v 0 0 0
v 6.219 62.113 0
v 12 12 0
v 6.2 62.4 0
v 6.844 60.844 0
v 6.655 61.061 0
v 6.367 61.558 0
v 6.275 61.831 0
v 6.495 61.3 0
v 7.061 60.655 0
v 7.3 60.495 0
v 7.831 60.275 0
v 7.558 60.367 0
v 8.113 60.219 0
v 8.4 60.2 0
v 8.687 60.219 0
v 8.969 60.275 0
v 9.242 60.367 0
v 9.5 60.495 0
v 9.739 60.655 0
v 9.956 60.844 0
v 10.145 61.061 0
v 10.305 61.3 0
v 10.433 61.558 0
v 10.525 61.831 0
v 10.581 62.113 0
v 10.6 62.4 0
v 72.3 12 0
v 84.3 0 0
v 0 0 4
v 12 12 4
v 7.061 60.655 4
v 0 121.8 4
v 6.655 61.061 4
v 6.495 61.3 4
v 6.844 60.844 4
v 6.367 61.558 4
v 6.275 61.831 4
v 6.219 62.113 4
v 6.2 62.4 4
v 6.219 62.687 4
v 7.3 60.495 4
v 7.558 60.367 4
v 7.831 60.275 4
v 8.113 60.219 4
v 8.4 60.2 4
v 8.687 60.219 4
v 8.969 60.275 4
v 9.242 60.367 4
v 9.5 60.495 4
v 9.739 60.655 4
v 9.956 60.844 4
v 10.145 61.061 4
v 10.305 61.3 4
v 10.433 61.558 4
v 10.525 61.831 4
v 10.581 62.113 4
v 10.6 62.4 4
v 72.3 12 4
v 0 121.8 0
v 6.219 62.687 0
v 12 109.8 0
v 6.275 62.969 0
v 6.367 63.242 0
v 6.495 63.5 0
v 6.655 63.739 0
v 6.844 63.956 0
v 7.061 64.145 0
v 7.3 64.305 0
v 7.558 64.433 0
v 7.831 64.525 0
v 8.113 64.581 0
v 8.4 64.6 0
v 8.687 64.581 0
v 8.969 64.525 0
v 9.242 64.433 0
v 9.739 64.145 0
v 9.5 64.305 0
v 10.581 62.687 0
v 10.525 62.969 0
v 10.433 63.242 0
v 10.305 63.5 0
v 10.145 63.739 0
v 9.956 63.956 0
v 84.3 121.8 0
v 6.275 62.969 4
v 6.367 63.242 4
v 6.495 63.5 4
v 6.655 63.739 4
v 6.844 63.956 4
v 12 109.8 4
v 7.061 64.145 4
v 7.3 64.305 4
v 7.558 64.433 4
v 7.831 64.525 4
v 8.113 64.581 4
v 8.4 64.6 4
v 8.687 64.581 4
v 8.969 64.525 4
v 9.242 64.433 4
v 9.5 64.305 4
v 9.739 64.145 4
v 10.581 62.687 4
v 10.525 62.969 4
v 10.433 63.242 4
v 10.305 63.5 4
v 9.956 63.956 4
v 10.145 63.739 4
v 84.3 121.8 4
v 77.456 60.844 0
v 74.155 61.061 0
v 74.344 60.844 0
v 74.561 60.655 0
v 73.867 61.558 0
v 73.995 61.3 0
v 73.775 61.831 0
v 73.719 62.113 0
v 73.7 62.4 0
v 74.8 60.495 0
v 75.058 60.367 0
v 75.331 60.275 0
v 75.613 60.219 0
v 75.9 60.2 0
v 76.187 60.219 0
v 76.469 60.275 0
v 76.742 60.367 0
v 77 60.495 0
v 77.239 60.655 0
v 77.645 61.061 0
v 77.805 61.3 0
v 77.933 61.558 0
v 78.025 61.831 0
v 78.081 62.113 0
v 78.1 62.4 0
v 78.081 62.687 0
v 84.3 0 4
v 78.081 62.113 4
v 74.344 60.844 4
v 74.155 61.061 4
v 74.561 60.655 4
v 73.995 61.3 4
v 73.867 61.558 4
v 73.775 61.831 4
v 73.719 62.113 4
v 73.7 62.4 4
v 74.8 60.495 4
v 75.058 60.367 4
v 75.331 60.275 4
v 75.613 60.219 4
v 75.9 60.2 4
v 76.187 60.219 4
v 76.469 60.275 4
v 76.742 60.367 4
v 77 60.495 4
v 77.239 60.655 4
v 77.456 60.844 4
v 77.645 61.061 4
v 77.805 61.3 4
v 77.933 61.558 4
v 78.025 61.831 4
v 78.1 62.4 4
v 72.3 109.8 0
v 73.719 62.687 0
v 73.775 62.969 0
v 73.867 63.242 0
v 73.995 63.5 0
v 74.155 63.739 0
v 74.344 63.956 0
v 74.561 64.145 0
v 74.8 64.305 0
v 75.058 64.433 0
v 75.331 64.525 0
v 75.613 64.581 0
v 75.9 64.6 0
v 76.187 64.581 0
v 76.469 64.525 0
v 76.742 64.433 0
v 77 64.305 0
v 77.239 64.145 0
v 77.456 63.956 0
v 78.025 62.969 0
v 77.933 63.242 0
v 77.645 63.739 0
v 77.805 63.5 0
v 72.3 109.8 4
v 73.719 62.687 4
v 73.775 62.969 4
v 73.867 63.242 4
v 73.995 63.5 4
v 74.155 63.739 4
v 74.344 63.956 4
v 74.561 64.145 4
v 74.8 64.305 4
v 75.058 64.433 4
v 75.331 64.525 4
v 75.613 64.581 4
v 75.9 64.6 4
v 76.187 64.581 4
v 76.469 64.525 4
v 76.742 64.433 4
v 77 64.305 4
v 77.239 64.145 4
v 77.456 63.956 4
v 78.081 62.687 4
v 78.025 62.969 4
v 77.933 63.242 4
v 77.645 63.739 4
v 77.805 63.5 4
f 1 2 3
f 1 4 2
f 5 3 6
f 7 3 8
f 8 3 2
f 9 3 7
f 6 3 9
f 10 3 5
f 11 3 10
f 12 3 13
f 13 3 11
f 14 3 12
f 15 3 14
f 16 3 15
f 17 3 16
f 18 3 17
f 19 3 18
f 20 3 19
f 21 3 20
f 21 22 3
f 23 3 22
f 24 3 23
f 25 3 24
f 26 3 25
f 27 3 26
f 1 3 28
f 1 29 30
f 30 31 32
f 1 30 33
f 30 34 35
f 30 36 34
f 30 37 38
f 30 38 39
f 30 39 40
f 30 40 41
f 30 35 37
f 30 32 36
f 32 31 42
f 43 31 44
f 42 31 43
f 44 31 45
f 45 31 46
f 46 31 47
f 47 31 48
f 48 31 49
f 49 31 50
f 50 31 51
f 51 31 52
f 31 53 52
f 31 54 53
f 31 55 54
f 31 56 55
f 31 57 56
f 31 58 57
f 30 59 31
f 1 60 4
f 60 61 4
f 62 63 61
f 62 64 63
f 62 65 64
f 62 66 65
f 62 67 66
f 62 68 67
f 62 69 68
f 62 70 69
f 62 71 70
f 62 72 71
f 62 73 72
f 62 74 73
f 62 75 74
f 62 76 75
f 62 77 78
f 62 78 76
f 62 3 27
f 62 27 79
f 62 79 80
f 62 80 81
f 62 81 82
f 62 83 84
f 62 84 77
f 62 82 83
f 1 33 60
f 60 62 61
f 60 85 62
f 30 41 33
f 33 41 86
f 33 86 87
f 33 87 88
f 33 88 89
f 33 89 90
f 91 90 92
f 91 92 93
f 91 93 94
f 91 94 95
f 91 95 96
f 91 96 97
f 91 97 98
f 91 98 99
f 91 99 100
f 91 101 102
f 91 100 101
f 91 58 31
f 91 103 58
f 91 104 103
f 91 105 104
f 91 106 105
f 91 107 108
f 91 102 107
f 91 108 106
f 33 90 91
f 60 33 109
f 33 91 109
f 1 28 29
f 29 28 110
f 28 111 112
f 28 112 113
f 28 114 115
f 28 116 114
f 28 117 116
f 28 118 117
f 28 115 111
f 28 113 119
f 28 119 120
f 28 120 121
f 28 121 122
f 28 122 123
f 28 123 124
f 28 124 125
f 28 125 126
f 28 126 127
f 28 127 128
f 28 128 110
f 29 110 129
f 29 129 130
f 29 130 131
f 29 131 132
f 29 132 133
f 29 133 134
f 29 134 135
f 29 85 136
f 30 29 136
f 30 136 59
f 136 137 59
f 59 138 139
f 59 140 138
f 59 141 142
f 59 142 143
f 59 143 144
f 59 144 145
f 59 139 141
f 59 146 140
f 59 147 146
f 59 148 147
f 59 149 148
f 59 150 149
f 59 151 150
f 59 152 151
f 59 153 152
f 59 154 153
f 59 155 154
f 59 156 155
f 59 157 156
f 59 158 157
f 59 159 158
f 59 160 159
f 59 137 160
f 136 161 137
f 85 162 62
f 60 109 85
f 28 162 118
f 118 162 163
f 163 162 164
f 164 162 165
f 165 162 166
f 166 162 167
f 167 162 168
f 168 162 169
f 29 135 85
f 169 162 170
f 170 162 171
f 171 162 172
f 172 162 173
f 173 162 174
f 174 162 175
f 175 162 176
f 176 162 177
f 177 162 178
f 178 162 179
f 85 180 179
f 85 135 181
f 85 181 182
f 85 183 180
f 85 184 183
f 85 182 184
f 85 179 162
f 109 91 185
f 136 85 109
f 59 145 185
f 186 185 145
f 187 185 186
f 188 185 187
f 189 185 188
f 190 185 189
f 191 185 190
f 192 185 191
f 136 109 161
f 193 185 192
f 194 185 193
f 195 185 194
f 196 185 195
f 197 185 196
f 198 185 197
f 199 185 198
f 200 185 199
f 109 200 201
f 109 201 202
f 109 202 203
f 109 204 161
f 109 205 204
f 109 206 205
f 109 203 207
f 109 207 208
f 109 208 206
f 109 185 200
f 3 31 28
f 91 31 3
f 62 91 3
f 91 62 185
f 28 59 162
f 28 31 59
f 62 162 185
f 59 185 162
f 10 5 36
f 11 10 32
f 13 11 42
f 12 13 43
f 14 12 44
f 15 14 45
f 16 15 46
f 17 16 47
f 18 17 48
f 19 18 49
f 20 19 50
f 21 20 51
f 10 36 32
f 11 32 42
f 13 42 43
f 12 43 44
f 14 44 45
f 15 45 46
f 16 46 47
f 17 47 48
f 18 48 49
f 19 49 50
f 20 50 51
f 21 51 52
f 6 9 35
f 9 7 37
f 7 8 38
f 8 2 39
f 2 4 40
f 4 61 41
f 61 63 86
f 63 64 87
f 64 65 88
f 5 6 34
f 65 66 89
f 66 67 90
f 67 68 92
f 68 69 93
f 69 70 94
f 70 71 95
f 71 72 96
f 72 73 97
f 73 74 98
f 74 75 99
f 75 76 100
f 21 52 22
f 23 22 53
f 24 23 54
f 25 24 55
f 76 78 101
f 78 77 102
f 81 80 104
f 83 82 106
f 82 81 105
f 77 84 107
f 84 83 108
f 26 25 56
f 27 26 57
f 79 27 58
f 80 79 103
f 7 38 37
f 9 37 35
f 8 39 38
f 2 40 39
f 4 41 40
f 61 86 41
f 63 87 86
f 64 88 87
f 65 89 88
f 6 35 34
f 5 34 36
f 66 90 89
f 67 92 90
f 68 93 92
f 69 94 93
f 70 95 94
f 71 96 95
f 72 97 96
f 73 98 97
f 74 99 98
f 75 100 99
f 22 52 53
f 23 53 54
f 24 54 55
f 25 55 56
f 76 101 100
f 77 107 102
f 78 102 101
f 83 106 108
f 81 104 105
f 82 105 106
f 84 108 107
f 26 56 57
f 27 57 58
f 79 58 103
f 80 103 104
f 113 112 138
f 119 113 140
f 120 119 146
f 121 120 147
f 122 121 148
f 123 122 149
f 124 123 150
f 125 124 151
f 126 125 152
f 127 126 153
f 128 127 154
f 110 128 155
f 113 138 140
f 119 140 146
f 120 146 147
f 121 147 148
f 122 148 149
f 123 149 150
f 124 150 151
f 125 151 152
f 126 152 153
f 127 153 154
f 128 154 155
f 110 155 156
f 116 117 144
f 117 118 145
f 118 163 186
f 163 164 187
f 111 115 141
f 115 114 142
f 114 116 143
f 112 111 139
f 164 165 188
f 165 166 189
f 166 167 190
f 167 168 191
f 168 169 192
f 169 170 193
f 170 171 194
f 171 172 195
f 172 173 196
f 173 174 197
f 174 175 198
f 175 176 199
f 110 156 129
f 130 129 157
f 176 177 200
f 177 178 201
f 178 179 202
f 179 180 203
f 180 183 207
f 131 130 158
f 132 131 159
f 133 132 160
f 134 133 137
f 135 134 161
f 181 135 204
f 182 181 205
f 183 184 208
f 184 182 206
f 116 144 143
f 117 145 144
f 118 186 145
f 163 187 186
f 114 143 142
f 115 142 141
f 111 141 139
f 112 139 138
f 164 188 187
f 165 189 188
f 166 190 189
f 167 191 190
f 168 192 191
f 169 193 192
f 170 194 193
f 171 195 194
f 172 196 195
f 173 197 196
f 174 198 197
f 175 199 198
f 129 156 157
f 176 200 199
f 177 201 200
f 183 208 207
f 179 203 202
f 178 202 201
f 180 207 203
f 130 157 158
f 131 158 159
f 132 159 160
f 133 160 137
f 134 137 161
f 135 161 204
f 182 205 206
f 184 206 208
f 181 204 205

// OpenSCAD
// GENERATED from build.py and parameters.json. Trial dimensions, mm.
translate([18.4, 23.4, 4.0]) { difference() {
translate([-18.4, -23.4, -4.0]) { cube([84.3,121.8,4.0]); }
translate([-6.399999999999999, -11.399999999999999, -4.1]) { cube([60.3,97.8,4.2]); }
translate([-10.0, 39, -4.1]) { cylinder(d=4.4,h=4.2,$fn=48); }
translate([57.5, 39, -4.1]) { cylinder(d=4.4,h=4.2,$fn=48); }
} }
